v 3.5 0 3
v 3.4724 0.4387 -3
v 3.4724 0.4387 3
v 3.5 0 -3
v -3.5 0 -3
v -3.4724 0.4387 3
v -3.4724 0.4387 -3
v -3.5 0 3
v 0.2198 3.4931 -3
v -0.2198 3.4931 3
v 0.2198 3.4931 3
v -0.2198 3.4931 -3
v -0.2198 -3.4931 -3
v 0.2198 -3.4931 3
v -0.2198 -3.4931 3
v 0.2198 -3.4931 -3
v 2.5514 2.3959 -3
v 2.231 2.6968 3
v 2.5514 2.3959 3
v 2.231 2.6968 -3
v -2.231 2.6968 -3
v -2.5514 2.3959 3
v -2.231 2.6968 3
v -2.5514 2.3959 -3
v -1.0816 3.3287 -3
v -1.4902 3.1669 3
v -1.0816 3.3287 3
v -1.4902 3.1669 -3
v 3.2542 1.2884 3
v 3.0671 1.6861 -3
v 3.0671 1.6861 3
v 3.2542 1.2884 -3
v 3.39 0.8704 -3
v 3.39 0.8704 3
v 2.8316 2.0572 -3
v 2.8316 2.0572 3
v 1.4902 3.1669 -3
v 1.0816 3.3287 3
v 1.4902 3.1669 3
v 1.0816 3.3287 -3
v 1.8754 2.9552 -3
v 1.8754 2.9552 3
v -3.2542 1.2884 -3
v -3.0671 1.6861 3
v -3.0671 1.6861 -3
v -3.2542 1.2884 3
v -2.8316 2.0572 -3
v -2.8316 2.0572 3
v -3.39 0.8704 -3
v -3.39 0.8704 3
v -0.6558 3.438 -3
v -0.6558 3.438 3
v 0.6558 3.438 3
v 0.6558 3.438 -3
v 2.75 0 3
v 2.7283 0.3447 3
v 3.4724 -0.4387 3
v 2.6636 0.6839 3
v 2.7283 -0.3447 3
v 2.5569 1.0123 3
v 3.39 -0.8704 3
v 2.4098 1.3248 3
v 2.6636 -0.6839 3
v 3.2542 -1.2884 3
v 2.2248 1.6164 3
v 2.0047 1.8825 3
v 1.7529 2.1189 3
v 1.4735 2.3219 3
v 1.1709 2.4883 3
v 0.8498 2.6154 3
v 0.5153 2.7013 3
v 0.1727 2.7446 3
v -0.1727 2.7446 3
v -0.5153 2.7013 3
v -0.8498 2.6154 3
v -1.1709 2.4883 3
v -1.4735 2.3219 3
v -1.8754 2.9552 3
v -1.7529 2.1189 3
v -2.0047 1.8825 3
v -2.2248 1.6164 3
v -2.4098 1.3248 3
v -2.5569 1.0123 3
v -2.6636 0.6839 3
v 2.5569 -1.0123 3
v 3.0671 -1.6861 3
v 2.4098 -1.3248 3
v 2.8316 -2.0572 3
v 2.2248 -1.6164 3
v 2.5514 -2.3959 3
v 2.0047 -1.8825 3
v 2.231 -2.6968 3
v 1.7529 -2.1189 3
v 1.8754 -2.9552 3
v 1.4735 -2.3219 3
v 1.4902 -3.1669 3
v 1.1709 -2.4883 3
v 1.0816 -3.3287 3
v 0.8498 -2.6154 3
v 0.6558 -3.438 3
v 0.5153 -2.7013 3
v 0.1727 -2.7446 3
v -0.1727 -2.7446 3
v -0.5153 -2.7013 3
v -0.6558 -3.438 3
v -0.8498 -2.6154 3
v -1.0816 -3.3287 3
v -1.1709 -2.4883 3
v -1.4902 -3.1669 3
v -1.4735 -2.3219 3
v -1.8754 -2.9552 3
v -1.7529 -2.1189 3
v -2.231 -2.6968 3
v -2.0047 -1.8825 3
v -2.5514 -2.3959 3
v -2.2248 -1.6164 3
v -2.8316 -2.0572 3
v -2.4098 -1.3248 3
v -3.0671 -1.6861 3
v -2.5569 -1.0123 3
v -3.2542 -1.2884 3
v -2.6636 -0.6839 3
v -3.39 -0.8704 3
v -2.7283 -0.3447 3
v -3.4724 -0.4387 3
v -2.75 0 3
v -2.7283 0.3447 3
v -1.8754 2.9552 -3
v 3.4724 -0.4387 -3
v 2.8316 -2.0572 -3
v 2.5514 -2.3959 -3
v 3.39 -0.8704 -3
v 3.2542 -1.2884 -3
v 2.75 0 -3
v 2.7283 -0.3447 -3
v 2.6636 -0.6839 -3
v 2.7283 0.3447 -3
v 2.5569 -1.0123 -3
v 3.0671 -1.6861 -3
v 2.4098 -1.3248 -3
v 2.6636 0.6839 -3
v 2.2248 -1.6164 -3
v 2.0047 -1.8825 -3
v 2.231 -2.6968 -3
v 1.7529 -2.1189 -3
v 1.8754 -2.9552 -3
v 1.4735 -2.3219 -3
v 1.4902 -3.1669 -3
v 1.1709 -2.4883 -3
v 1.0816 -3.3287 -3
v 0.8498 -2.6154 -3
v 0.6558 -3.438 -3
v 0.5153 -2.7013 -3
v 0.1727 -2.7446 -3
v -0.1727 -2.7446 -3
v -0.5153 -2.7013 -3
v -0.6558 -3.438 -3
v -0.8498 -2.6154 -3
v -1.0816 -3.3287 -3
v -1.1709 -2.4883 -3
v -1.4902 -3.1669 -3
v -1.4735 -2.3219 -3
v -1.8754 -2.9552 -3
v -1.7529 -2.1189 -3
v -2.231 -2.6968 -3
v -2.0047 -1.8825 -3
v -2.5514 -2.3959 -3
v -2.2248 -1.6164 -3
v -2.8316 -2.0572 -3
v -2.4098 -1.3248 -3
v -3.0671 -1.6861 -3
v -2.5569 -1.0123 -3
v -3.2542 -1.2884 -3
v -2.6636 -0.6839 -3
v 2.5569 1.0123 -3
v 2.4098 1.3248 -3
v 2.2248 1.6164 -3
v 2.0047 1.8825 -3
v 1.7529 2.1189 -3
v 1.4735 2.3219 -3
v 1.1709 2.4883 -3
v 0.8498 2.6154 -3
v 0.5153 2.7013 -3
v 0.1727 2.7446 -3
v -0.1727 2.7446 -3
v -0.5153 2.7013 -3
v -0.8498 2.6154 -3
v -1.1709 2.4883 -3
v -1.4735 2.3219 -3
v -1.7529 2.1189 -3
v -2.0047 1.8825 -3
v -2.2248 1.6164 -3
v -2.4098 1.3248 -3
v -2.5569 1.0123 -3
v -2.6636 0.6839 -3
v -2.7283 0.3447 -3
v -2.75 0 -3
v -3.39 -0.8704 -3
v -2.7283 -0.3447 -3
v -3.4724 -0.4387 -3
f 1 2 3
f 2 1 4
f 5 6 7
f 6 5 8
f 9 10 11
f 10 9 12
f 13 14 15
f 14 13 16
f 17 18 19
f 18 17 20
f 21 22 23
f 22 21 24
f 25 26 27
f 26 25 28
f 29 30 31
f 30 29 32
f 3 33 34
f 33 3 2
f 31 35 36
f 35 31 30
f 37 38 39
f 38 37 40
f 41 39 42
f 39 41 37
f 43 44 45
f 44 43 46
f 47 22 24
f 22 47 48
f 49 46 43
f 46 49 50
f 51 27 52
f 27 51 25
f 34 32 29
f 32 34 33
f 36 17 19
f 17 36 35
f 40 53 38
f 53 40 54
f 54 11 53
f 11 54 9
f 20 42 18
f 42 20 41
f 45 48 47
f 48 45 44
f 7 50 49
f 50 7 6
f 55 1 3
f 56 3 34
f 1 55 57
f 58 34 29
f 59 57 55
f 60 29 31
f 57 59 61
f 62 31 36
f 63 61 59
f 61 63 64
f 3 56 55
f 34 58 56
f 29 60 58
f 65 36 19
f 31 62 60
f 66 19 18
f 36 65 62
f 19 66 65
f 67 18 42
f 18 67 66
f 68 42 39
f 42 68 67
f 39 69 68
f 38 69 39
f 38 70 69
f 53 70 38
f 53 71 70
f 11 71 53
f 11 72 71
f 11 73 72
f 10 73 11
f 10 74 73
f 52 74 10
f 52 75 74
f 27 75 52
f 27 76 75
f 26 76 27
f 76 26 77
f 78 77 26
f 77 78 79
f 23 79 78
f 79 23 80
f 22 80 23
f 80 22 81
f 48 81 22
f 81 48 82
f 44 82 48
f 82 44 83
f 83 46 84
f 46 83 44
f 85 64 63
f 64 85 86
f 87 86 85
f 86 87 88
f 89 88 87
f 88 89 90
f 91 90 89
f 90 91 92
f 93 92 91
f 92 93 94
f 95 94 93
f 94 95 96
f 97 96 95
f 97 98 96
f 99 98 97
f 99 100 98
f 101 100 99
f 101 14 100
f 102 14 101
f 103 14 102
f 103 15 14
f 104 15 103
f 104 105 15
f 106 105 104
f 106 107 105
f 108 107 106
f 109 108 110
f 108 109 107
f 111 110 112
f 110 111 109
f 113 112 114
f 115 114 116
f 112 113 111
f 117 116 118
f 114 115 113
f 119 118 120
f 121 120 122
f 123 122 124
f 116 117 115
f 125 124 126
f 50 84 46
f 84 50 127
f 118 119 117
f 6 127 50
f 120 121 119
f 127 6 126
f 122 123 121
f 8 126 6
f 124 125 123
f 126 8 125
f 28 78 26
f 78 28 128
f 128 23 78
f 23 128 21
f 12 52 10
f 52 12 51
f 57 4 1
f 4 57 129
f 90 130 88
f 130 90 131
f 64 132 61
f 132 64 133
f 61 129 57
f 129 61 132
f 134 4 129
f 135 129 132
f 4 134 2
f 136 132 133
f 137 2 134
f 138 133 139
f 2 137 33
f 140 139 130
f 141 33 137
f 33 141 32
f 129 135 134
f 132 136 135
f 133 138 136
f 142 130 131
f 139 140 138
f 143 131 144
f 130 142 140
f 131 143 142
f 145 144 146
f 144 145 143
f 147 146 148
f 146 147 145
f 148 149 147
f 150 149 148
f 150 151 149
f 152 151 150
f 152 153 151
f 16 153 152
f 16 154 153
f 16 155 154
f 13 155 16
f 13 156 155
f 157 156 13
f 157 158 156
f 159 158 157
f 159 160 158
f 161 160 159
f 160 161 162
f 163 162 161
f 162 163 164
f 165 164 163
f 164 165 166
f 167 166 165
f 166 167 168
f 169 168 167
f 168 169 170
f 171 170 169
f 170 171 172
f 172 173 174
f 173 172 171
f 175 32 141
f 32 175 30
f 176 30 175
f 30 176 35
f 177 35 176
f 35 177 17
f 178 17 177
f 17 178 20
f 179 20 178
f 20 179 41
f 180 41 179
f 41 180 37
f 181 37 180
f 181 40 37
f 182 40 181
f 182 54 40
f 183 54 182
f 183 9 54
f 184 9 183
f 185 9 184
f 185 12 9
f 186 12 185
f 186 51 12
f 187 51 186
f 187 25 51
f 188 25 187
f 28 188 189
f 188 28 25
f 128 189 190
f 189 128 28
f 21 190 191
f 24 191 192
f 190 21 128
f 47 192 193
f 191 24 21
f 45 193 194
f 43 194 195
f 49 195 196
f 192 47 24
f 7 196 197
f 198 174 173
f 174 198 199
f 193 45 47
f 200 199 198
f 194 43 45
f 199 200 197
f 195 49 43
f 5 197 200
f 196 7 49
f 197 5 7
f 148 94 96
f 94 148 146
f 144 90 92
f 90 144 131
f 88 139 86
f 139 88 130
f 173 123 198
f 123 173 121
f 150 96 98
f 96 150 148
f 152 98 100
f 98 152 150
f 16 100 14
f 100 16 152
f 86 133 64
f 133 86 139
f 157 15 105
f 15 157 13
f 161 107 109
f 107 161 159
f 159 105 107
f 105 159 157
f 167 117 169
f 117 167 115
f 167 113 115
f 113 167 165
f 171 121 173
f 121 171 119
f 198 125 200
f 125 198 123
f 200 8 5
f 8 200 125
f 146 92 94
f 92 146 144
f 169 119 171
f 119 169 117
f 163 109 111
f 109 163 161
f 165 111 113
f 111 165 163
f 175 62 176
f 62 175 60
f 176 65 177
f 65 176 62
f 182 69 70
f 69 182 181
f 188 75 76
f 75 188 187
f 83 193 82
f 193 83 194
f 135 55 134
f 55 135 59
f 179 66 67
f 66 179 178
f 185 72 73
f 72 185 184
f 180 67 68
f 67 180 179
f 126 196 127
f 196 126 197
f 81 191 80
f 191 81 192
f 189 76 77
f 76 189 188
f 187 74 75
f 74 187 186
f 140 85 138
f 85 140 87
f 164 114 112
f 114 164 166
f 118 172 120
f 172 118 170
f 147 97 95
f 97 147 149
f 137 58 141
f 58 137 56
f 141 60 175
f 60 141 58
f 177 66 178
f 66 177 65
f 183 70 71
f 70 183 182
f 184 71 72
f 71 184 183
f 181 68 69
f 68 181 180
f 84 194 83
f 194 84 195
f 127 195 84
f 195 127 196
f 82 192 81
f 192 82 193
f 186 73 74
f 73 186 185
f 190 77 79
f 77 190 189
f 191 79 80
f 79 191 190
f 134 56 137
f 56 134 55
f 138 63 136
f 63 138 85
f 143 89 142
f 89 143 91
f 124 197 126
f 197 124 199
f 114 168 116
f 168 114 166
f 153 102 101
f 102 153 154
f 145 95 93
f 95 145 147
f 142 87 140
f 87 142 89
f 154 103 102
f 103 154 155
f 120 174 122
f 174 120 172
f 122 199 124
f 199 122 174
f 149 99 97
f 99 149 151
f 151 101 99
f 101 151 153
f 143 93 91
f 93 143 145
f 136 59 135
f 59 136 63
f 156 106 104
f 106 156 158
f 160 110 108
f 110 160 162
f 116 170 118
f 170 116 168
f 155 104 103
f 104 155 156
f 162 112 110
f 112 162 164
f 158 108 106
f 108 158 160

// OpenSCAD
$fn = 50;


difference() {
	union() {
		translate(v = [0, 0, -3.0000000000]) {
			cylinder(h = 6, r = 3.5000000000);
		}
	}
	union() {
		translate(v = [0, 0, -100.0000000000]) {
			cylinder(h = 200, r = 2.7500000000);
		}
	}
}
